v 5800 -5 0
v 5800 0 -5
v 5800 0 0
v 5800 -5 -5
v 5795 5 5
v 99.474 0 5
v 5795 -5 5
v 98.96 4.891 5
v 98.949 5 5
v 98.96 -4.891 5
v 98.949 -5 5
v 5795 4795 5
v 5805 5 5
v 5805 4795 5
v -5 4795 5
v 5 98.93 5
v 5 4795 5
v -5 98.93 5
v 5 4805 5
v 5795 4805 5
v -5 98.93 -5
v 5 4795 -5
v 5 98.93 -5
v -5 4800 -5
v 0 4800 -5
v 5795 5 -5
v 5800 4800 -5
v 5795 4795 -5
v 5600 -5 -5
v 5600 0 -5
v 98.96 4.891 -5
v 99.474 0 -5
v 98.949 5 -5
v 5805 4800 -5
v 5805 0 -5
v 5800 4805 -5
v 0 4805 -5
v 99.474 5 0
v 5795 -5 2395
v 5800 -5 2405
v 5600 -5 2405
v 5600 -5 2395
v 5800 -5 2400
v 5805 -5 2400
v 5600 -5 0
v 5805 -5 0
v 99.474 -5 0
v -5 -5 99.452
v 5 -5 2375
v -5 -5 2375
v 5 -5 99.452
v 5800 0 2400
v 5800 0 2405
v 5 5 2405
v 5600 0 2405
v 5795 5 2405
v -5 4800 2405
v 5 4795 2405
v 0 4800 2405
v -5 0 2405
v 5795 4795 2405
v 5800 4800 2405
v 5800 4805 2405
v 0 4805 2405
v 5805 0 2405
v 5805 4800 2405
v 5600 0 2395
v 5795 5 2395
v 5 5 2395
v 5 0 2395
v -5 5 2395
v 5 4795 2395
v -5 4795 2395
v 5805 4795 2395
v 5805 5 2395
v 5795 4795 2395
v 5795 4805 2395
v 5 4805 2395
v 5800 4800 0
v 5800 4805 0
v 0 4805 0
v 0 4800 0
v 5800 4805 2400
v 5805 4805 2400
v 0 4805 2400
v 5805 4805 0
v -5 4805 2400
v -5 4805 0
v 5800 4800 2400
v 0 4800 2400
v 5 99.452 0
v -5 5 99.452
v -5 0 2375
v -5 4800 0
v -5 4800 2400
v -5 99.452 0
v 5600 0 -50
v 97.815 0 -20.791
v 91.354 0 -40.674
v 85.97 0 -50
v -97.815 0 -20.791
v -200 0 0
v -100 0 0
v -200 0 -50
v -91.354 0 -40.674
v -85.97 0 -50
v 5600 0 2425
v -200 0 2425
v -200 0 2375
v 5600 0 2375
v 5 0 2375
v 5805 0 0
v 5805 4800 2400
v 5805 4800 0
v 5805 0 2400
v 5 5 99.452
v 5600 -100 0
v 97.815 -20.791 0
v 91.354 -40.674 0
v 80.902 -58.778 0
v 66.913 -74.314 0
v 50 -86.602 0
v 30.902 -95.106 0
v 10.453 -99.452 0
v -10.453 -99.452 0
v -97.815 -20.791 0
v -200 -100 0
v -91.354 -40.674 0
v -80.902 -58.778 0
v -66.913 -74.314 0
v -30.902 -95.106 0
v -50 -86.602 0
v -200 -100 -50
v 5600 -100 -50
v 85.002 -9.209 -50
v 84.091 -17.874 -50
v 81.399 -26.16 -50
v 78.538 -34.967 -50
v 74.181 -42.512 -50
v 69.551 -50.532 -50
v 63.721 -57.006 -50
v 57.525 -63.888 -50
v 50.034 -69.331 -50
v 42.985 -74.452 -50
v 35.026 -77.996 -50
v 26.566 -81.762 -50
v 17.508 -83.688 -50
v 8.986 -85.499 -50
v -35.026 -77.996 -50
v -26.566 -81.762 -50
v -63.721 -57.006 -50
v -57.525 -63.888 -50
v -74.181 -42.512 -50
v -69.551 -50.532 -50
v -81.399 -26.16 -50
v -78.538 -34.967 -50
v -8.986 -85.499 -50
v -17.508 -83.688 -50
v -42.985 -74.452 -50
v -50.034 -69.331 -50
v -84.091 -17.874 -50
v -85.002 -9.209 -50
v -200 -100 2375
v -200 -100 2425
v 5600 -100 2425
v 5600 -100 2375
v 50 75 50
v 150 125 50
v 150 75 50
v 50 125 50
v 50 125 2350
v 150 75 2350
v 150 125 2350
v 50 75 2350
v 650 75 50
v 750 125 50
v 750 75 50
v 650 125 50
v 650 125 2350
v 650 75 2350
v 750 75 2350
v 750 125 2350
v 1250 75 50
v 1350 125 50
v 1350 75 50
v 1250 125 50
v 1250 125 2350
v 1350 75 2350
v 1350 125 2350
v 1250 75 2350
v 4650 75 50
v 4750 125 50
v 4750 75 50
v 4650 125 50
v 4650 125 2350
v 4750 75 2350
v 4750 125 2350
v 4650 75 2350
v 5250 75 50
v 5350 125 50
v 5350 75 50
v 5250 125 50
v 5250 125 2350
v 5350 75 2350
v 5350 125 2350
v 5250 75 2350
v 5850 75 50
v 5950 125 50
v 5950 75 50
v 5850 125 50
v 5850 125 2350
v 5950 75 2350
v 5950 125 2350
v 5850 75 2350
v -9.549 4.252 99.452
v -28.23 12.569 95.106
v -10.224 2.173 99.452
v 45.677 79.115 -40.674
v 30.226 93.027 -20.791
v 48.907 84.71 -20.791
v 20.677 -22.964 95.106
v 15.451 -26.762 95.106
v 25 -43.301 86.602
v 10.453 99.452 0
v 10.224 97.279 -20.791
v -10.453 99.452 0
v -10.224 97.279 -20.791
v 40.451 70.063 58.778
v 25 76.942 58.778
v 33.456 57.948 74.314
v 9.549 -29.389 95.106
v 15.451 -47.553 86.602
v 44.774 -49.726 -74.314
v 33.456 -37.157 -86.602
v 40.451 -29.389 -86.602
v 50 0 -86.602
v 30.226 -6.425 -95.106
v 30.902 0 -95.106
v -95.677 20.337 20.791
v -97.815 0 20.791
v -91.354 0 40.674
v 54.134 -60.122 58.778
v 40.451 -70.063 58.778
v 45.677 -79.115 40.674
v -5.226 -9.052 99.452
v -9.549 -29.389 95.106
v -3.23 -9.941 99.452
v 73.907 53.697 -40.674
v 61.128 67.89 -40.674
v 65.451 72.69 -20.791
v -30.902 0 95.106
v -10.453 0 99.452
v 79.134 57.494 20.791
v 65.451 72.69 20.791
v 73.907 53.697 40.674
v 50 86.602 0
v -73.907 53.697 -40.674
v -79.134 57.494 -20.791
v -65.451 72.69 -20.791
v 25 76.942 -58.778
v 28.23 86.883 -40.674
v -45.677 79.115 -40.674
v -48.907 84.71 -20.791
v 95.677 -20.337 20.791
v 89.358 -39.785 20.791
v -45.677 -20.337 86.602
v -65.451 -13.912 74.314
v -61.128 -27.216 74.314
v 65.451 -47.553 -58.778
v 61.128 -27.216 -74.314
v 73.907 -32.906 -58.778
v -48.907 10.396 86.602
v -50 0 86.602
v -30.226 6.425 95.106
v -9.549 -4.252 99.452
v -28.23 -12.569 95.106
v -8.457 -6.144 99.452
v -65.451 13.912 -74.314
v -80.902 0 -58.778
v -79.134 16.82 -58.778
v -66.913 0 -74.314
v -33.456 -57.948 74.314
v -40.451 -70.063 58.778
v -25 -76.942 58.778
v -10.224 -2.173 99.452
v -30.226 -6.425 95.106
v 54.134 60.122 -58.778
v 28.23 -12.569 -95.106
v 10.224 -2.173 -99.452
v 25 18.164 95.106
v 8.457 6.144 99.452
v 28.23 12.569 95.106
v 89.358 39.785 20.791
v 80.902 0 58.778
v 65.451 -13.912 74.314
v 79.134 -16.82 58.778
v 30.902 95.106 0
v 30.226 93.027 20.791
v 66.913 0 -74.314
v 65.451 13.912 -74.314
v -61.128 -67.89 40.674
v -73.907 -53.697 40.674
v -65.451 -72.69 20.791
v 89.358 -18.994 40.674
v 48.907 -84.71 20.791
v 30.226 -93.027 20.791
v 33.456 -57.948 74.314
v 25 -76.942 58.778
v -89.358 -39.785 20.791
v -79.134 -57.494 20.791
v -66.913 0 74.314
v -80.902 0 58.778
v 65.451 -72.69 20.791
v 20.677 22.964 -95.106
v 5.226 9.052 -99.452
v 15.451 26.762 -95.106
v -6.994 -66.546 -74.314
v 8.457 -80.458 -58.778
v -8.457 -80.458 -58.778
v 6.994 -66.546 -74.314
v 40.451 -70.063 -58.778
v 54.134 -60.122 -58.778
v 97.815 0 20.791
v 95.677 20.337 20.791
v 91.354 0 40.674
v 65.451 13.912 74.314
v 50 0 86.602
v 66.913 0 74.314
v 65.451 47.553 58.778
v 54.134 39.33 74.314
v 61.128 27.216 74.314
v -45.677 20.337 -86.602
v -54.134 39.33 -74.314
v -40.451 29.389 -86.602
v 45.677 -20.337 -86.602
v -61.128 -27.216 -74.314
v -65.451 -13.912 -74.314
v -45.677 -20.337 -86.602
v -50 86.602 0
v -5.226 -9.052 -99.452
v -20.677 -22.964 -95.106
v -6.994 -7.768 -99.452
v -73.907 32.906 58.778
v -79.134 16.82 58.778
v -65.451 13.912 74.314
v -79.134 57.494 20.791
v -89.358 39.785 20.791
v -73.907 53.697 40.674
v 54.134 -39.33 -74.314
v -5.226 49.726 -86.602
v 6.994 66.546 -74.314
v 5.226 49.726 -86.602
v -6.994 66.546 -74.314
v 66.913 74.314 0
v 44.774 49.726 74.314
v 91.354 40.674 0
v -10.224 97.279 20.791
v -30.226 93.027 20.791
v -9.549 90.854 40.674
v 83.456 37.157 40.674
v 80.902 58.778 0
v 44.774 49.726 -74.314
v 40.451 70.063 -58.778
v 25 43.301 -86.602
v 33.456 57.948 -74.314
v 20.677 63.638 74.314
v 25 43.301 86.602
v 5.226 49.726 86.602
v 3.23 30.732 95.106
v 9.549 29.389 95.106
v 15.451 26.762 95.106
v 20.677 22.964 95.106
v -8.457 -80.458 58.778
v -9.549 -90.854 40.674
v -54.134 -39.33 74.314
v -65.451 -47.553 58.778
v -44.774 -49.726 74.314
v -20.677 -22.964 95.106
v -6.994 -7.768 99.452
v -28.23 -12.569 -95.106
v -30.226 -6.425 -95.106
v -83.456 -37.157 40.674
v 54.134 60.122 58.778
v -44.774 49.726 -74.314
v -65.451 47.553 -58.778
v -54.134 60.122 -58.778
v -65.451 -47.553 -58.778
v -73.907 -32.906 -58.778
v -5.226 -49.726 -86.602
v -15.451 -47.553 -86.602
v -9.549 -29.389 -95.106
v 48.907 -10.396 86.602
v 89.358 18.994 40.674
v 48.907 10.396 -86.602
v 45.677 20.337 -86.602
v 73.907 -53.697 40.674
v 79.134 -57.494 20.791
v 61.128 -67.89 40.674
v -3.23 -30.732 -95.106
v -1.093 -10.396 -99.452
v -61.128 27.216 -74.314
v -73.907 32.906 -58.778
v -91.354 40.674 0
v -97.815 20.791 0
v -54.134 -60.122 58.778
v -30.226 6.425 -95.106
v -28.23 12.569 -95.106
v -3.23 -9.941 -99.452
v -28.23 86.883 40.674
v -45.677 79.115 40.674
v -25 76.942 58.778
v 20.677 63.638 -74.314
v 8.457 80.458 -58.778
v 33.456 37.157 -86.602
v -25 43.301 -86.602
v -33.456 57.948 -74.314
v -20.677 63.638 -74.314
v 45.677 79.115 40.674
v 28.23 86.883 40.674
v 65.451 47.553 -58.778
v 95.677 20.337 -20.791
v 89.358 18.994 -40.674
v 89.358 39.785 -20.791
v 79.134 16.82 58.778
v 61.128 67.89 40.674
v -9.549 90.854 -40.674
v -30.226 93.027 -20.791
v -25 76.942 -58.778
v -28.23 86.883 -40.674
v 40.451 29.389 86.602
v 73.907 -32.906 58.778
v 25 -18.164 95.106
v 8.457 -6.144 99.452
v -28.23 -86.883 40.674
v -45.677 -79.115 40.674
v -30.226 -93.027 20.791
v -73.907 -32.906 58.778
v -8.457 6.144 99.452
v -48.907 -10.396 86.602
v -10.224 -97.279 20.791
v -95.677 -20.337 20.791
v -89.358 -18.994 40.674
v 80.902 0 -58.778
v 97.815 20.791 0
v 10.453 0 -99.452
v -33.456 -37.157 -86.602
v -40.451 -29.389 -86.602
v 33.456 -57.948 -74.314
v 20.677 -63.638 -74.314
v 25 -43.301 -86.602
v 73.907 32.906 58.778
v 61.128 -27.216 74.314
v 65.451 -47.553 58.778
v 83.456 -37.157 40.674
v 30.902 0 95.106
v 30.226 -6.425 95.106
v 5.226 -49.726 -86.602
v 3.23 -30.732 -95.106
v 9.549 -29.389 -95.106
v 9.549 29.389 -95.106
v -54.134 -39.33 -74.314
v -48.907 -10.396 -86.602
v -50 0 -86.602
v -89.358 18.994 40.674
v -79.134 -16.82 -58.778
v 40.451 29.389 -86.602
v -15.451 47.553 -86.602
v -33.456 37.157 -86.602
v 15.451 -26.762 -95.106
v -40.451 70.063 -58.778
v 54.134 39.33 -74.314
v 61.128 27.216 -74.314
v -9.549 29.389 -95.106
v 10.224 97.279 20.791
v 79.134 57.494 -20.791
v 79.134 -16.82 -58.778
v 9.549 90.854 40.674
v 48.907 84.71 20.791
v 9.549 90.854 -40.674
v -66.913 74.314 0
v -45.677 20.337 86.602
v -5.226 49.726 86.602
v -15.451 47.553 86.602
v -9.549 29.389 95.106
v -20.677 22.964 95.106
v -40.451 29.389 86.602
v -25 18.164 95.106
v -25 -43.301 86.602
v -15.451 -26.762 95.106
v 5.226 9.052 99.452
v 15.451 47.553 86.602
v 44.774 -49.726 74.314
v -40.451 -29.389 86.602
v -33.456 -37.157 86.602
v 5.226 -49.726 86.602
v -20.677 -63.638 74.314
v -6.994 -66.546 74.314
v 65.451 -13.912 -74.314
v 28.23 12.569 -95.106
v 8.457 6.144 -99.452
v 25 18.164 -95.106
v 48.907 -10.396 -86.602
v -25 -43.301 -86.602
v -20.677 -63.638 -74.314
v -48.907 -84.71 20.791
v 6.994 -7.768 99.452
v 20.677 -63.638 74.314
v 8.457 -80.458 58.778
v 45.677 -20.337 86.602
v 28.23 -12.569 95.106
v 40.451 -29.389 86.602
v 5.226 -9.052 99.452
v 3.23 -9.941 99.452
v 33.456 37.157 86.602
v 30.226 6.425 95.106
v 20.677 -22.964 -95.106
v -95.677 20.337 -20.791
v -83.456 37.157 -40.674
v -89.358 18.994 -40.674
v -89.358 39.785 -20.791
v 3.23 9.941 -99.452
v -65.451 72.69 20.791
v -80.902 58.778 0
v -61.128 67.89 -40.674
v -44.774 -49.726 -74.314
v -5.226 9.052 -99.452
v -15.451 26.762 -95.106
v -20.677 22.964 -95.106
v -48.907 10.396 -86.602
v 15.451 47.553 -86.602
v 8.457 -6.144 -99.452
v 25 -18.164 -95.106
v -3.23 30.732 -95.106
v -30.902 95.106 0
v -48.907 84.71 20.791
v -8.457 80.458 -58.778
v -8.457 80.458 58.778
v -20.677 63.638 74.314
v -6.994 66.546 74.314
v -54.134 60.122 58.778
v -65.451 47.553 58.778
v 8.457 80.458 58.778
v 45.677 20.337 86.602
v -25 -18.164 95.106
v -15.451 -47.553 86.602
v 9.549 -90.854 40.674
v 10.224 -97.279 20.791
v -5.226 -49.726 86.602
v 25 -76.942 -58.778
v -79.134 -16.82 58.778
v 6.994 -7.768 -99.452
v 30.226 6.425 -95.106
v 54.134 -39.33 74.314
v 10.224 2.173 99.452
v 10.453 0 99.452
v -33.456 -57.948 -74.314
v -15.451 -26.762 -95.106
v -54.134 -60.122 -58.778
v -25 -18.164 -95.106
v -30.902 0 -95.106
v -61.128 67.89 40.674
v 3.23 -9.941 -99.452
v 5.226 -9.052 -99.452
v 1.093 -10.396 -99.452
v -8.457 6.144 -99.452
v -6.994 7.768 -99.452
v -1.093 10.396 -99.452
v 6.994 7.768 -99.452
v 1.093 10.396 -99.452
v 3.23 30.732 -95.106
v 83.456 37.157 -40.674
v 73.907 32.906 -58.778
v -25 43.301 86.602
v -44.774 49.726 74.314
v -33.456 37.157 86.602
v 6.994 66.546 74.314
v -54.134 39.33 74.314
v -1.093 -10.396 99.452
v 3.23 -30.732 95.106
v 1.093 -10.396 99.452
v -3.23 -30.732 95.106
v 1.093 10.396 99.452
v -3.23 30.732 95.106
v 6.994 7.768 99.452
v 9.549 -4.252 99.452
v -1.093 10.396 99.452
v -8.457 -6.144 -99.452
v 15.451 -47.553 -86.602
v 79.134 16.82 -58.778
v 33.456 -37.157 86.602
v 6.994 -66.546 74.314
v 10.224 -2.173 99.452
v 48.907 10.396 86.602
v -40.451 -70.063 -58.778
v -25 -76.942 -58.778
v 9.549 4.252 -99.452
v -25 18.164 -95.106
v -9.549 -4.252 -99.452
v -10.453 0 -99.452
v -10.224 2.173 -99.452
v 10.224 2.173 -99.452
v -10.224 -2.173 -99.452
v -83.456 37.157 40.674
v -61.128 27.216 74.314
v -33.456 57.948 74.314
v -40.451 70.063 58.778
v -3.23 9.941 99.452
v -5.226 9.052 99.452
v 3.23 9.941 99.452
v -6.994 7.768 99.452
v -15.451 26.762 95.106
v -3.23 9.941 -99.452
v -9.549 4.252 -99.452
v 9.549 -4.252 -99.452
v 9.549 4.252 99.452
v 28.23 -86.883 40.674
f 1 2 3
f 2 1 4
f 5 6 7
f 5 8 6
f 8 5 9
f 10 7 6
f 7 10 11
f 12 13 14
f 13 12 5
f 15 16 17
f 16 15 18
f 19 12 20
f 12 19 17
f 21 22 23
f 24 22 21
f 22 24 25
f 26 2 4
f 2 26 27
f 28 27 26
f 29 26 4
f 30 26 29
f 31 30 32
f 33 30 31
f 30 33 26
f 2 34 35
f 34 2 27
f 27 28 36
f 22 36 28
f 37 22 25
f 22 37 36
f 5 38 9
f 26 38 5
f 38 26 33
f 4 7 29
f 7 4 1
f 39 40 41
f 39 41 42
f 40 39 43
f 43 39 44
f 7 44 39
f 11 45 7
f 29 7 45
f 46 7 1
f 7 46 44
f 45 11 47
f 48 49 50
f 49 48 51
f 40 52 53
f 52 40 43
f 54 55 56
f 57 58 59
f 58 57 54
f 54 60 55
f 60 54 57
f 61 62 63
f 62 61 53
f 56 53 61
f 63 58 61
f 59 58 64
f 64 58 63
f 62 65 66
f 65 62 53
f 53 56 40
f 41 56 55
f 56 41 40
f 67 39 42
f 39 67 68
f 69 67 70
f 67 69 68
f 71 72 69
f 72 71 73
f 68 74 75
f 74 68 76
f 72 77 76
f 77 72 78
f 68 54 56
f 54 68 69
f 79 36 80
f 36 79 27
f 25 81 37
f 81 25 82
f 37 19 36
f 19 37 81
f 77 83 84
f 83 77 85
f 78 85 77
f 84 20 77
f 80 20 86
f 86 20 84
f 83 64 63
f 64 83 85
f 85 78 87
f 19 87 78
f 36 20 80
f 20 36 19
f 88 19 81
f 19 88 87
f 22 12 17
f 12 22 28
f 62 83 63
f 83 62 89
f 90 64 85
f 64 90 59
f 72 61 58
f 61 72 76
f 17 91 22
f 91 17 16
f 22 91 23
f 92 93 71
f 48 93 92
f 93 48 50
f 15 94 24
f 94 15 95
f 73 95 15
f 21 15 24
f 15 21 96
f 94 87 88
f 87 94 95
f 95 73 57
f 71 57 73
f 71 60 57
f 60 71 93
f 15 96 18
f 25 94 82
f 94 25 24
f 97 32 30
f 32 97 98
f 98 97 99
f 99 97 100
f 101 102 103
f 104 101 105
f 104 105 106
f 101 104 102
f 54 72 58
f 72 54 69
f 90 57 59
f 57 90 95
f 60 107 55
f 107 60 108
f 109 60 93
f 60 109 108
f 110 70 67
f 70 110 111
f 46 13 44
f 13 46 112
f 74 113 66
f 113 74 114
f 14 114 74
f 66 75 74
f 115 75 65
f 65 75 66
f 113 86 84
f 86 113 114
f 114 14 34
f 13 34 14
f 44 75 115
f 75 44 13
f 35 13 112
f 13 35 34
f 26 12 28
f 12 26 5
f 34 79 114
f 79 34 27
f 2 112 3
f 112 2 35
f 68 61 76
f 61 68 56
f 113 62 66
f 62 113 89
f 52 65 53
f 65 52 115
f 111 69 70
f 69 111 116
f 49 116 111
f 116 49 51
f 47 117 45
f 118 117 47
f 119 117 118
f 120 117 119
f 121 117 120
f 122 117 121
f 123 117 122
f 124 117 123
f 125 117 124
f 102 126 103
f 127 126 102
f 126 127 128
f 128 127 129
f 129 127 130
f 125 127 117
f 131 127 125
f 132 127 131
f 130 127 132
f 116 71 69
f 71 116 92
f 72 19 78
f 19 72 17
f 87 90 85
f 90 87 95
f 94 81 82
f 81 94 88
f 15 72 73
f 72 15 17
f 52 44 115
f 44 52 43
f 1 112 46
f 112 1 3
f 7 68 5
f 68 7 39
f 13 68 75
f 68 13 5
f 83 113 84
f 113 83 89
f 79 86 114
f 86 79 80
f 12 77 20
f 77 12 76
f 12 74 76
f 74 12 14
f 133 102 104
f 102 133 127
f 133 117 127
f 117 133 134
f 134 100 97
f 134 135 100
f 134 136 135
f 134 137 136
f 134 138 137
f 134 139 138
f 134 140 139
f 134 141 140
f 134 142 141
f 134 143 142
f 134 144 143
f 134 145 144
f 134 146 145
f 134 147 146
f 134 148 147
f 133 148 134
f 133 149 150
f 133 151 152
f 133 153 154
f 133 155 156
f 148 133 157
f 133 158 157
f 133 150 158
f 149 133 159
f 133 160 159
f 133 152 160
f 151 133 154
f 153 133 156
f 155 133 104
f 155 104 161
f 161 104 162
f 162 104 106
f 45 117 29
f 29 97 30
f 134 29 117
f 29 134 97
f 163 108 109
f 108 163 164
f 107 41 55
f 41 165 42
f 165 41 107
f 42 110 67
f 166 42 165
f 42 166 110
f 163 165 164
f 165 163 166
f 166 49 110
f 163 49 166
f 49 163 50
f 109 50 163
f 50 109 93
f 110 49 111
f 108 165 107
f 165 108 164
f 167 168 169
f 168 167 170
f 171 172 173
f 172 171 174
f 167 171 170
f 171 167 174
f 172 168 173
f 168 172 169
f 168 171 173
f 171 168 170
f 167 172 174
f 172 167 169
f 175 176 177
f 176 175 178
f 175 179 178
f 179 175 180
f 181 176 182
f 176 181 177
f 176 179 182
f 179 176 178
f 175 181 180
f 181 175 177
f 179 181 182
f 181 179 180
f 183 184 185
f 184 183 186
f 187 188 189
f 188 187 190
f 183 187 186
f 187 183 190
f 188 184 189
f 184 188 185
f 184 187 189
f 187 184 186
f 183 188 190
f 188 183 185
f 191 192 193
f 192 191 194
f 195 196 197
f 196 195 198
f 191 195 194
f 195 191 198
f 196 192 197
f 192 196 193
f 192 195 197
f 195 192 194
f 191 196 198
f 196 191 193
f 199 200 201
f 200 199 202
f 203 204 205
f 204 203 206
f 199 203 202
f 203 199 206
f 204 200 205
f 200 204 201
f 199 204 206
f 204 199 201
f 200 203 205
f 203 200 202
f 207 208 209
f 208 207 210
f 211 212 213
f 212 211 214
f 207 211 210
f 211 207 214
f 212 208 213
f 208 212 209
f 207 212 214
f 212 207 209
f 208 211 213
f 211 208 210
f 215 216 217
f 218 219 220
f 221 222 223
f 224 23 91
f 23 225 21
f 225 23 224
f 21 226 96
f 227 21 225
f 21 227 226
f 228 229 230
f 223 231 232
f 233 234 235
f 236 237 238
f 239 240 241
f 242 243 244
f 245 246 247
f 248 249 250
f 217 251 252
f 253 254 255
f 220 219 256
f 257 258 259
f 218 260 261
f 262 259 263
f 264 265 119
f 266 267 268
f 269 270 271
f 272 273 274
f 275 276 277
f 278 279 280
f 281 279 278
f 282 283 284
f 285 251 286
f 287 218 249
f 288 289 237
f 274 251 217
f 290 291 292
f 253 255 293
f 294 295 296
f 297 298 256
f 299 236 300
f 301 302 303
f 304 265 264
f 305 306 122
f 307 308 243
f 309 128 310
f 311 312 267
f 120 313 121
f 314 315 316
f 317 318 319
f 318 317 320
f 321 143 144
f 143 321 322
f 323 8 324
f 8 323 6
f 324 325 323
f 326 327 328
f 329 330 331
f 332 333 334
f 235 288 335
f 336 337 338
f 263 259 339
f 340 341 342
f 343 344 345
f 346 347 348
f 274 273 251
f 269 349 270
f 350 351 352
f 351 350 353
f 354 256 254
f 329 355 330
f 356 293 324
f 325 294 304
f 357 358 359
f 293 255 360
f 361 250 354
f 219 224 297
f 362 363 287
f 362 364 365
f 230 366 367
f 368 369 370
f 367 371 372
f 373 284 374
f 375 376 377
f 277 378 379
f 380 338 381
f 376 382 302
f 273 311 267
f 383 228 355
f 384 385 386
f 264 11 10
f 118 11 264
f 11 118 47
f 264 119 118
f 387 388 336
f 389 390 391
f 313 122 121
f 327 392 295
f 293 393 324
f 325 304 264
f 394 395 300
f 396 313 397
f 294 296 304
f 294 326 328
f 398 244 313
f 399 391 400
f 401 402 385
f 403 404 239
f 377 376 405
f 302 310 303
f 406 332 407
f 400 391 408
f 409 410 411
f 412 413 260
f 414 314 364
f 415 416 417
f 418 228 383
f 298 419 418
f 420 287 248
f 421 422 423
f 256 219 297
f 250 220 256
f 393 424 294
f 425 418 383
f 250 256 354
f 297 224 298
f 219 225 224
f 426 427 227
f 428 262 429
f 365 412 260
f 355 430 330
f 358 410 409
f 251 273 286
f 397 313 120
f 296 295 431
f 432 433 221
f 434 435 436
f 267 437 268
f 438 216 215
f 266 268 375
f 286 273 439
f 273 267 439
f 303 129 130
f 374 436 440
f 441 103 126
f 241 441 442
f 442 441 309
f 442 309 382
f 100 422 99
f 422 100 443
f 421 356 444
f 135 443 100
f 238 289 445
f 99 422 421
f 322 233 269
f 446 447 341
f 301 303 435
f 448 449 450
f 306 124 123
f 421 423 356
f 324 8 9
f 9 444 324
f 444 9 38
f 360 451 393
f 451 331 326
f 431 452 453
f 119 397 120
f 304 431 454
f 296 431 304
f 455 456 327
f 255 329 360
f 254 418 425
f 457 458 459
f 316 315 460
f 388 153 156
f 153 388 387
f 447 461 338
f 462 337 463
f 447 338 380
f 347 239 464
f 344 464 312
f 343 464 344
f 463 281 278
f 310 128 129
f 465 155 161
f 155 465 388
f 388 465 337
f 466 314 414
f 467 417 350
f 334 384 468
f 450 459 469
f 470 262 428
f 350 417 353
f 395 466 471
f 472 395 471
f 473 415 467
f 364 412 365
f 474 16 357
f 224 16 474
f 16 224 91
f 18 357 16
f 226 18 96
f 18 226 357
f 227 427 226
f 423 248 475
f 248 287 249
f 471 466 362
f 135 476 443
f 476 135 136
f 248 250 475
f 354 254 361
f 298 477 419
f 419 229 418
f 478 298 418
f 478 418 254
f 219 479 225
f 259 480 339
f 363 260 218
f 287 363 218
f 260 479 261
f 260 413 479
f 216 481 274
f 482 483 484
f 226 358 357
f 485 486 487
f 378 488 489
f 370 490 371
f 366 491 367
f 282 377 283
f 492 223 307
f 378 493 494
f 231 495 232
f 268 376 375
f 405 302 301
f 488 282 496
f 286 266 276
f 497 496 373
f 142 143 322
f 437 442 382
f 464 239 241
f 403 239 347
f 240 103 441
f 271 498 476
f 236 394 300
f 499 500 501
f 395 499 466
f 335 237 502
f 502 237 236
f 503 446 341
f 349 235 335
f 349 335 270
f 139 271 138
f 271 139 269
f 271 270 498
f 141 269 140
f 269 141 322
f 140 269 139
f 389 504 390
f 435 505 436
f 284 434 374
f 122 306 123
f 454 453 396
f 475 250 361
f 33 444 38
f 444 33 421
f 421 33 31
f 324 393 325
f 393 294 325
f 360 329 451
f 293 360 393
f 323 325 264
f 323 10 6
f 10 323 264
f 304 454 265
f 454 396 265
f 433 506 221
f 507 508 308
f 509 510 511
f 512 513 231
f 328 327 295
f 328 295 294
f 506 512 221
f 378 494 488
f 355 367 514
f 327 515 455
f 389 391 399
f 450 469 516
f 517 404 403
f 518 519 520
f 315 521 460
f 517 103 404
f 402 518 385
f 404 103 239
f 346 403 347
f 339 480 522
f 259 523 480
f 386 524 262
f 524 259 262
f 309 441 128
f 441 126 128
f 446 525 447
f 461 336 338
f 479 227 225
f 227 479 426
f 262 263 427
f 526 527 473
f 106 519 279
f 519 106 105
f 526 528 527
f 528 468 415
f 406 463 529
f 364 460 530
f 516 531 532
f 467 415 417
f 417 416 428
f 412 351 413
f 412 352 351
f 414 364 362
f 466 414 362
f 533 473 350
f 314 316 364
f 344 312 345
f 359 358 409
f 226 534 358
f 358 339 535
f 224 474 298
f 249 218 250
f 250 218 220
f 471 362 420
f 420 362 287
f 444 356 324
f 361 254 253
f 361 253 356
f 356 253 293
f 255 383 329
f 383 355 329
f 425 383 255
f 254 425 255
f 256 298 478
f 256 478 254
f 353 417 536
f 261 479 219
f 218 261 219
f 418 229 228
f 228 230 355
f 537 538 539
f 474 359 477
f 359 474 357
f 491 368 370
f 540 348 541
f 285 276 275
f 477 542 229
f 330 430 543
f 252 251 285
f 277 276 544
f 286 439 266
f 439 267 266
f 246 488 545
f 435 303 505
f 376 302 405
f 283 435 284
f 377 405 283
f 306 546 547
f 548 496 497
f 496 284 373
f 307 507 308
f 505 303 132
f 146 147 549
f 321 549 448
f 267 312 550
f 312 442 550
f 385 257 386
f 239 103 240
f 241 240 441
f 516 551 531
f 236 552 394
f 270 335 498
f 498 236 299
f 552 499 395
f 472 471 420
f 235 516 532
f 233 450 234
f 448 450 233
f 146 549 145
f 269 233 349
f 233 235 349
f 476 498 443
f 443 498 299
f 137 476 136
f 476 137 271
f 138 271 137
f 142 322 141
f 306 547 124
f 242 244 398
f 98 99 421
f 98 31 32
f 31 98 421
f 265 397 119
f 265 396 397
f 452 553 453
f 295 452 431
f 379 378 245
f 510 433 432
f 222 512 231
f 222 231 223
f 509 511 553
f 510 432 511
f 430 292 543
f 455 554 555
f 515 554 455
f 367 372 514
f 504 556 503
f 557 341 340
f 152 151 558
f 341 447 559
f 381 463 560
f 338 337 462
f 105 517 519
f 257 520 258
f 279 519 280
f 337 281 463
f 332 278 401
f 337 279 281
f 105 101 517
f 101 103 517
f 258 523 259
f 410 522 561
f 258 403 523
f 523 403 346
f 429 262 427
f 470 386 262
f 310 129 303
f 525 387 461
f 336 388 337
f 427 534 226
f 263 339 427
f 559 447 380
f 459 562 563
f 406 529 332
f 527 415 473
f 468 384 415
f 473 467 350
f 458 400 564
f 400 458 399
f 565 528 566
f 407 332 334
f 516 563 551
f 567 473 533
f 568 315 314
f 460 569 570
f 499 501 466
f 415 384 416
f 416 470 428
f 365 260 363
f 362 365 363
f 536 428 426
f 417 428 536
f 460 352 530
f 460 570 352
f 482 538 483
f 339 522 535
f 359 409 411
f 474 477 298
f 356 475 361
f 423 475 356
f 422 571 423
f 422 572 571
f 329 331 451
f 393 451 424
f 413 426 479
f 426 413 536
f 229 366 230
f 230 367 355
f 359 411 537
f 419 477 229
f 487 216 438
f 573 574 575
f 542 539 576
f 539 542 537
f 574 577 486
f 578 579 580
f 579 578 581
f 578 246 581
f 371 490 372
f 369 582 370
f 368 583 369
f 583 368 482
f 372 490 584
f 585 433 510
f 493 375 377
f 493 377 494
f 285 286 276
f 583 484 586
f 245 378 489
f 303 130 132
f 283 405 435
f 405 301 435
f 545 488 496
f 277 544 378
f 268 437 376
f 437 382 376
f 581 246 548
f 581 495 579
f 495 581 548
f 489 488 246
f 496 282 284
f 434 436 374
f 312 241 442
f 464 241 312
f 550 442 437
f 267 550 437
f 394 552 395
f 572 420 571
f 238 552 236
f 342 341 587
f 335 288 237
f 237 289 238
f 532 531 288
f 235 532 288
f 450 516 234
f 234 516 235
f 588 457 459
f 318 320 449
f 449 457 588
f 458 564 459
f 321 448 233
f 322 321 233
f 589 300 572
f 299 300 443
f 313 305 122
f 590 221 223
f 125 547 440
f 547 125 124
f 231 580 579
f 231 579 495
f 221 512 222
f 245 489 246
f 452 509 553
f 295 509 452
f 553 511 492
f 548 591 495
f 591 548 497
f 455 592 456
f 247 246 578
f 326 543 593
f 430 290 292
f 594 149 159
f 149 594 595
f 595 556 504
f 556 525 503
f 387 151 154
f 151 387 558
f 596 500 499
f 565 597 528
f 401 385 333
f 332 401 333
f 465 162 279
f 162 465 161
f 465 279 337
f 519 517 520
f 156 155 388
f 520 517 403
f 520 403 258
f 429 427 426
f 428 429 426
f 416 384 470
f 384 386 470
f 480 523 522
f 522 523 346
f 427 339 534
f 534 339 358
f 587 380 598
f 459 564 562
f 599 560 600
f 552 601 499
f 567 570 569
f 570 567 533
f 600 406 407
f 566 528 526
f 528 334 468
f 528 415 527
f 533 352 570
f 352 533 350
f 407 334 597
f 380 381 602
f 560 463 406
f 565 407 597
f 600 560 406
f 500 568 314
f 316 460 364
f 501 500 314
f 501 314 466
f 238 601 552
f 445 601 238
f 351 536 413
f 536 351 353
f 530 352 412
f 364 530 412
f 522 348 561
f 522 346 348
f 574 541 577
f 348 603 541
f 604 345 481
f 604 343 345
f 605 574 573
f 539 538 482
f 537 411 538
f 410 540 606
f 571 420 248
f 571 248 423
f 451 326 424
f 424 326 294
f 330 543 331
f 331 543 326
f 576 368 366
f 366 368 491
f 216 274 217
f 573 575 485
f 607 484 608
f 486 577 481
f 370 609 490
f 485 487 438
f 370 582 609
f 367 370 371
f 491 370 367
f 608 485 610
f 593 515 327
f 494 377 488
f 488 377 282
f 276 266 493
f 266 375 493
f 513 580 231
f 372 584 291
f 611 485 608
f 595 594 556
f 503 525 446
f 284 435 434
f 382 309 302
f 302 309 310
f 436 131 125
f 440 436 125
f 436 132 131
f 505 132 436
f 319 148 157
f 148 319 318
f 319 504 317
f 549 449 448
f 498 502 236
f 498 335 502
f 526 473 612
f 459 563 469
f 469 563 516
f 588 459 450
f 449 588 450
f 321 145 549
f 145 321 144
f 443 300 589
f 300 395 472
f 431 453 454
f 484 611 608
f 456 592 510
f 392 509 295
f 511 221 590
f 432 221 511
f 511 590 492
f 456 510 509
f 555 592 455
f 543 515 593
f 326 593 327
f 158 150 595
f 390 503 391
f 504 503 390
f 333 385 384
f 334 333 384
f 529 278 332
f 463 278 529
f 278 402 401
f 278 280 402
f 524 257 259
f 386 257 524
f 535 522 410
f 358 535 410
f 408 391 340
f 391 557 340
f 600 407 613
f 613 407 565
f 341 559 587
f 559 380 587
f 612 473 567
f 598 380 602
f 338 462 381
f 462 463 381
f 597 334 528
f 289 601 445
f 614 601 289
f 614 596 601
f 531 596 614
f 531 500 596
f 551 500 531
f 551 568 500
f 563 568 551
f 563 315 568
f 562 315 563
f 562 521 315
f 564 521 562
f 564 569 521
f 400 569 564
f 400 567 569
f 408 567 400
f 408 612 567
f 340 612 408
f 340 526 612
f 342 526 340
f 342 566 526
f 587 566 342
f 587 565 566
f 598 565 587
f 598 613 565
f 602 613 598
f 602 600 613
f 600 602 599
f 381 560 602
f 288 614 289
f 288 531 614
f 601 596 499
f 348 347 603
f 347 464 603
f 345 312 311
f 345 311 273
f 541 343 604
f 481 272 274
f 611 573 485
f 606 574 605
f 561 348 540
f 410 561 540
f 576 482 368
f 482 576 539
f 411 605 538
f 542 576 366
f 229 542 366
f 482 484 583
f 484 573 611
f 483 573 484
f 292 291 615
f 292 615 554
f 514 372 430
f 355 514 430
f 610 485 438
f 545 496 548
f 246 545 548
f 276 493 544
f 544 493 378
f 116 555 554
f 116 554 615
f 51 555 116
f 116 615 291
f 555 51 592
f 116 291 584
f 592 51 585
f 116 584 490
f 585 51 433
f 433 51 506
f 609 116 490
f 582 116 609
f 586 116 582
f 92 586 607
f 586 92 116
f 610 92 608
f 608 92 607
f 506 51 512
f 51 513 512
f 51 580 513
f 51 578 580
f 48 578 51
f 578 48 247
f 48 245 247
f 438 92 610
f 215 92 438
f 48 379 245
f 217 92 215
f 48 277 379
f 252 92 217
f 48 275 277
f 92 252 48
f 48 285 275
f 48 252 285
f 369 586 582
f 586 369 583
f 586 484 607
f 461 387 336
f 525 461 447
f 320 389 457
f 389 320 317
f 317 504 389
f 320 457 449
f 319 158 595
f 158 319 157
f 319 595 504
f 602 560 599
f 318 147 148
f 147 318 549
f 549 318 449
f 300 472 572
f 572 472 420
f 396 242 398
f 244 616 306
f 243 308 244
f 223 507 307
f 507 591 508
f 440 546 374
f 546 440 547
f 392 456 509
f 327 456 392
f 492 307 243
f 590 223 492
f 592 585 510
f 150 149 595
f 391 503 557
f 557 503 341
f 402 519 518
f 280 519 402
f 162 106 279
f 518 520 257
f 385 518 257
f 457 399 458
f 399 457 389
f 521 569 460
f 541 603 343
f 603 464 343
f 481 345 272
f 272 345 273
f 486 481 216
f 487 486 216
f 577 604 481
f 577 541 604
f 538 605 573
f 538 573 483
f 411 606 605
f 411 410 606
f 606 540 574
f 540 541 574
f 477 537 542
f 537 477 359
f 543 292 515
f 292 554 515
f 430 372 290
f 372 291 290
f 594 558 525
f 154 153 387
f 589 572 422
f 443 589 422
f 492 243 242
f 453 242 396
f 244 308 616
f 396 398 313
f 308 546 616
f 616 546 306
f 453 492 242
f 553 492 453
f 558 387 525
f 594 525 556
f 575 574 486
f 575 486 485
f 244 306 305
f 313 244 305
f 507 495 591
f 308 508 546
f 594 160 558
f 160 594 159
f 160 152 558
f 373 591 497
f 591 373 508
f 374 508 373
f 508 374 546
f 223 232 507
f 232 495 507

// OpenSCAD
// Generated from garage_viewer_grid50_colored.ipynb
// 2x4 approximated as 50x100 mm. Colors by equal length.
thickness = 50;
width = 100;

poses = [
  [1, 5800, [2700, -50, -25], [90, 0, 0], [1.000000, 0.596078, 0.588235]],
  [2, 5800, [2700, -50, 2400], [90, 0, 0], [1.000000, 0.596078, 0.588235]],
  [3, 2300, [100, 100, 1200], [0, -90, 0], [0.682353, 0.780392, 0.909804]],
[4, 2300, [700, 100, 1200], [0, -90, 0], [0.682353, 0.780392, 0.909804]],
 [5, 2300, [1300, 100, 1200], [0, -90, 0], [0.682353, 0.780392, 0.909804]],
  [6, 2300, [4700, 100, 1200], [0, -90, 0], [0.682353, 0.780392, 0.909804]],
  [7, 2300, [5300, 100, 1200], [0, -90, 0], [0.682353, 0.780392, 0.909804]],
  [8, 2300, [5900, 100, 1200], [0, -90, 0], [0.682353, 0.780392, 0.909804]],
/*  [9, 5800, [2900, 4750, 0], [90, 0, 0], [1.000000, 0.596078, 0.588235]],
  [10, 5800, [2900, 4750, 2400], [90, 0, 0], [1.000000, 0.596078, 0.588235]],
  [11, 2300, [100, 4900, 1200], [0, -90, 0], [0.682353, 0.780392, 0.909804]],
  [12, 2300, [700, 4900, 1200], [0, -90, 0], [0.682353, 0.780392, 0.909804]],
  [13, 2300, [1300, 4900, 1200], [0, -90, 0], [0.682353, 0.780392, 0.909804]],
  [14, 2300, [4700, 4900, 1200], [0, -90, 0], [0.682353, 0.780392, 0.909804]],
  [15, 2300, [5300, 4900, 1200], [0, -90, 0], [0.682353, 0.780392, 0.909804]],
  [16, 2300, [5900, 4900, 1200], [0, -90, 0], [0.682353, 0.780392, 0.909804]],
  [17, 1200, [150, 650, 0], [-90, 0, 90], [0.121569, 0.466667, 0.705882]],
  [18, 1200, [150, 4350, 0], [-90, 0, 90], [0.121569, 0.466667, 0.705882]],
  [20, 2750, [150, 650, 1400], [0, -90, 0], [1.000000, 0.733333, 0.470588]],
  [21, 3150, [150, 1250, 1600], [0, -90, 0], [0.596078, 0.874510, 0.541176]],
  [22, 3150, [150, 3750, 1600], [0, -90, 0], [0.596078, 0.874510, 0.541176]],
  [23, 2750, [150, 4350, 1400], [0, -90, 0], [1.000000, 0.733333, 0.470588]],
  [25, 1200, [5850, 650, 0], [-90, 0, 90], [0.121569, 0.466667, 0.705882]],
  [26, 1200, [5850, 4350, 0], [-90, 0, 90], [0.121569, 0.466667, 0.705882]],
  [28, 2750, [5850, 650, 1400], [0, -90, 0], [1.000000, 0.733333, 0.470588]],
  [29, 3150, [5850, 1250, 1600], [0, -90, 0], [0.596078, 0.874510, 0.541176]],
  [30, 3150, [5850, 3750, 1600], [0, -90, 0], [0.596078, 0.874510, 0.541176]],
  [31, 2750, [5850, 4350, 1400], [0, -90, 0], [1.000000, 0.733333, 0.470588]],
  [33, 4950, [100, 1250, 4550], [-90, -60, 90], [0.839216, 0.152941, 0.156863]],
  [34, 4950, [100, 3750, 4550], [90, -60, -90], [0.839216, 0.152941, 0.156863]],
  [35, 3050, [100, 1300, 3250], [-90, -35, 90], [0.172549, 0.627451, 0.172549]],
  [36, 3050, [100, 3700, 3250], [90, -35, -90], [0.172549, 0.627451, 0.172549]],
  [37, 2500, [100, 2500, 5250], [0, -90, 0], [1.000000, 0.498039, 0.054902]],
  [38, 4950, [1250, 1250, 4550], [-90, -60, 90], [0.839216, 0.152941, 0.156863]],
  [39, 4950, [1250, 3750, 4550], [90, -60, -90], [0.839216, 0.152941, 0.156863]],
  [40, 3050, [1250, 1300, 3250], [-90, -35, 90], [0.172549, 0.627451, 0.172549]],
  [41, 3050, [1250, 3700, 3250], [90, -35, -90], [0.172549, 0.627451, 0.172549]],
  [42, 2500, [1250, 2500, 5250], [0, -90, 0], [1.000000, 0.498039, 0.054902]],
  [43, 4950, [2400, 1250, 4550], [-90, -60, 90], [0.839216, 0.152941, 0.156863]],
  [44, 4950, [2400, 3750, 4550], [90, -60, -90], [0.839216, 0.152941, 0.156863]],
  [45, 3050, [2400, 1300, 3250], [-90, -35, 90], [0.172549, 0.627451, 0.172549]],
  [46, 3050, [2400, 3700, 3250], [90, -35, -90], [0.172549, 0.627451, 0.172549]],
  [47, 2500, [2400, 2500, 5250], [0, -90, 0], [1.000000, 0.498039, 0.054902]],
  [48, 4950, [3600, 1250, 4550], [-90, -60, 90], [0.839216, 0.152941, 0.156863]],
  [49, 4950, [3600, 3750, 4550], [90, -60, -90], [0.839216, 0.152941, 0.156863]],
  [50, 3050, [3600, 1300, 3250], [-90, -35, 90], [0.172549, 0.627451, 0.172549]],
  [51, 3050, [3600, 3700, 3250], [90, -35, -90], [0.172549, 0.627451, 0.172549]],
  [52, 2500, [3600, 2500, 5250], [0, -90, 0], [1.000000, 0.498039, 0.054902]],
  [53, 4950, [4750, 1250, 4550], [-90, -60, 90], [0.839216, 0.152941, 0.156863]],
  [54, 4950, [4750, 3750, 4550], [90, -60, -90], [0.839216, 0.152941, 0.156863]],
  [55, 3050, [4750, 1300, 3250], [-90, -35, 90], [0.172549, 0.627451, 0.172549]],
  [56, 3050, [4750, 3700, 3250], [90, -35, -90], [0.172549, 0.627451, 0.172549]],
  [57, 2500, [4750, 2500, 5250], [0, -90, 0], [1.000000, 0.498039, 0.054902]],
  [58, 4950, [5900, 1250, 4550], [-90, -60, 90], [0.839216, 0.152941, 0.156863]],
  [59, 4950, [5900, 3750, 4550], [90, -60, -90], [0.839216, 0.152941, 0.156863]],
  [60, 3050, [5900, 1300, 3250], [-90, -35, 90], [0.172549, 0.627451, 0.172549]],
  [61, 3050, [5900, 3700, 3250], [90, -35, -90], [0.172549, 0.627451, 0.172549]],
  [62, 2500, [5900, 2500, 5250], [0, -90, 0], [1.000000, 0.498039, 0.054902]],
*/// [63, 5900, [3000, 2500, 4150], [90, 0, 0], [1.000000, 0.596078, 0.588235]],
];

module beam(len, pos, rot, rgb){
  color(rgb)
    translate(pos)
      rotate(rot)
        cube([len, thickness, width], center=true);
}

// Red bounding box from (0,0,0) to (5800,4800,2400)
bbox = [5800, 4800, 2400];
edge = 10;
module bbox_wire(b){
  x=b[0]; y=b[1]; z=b[2];
  color([1,0,0]) {
    for (yy=[0,y], zz=[0,z]) translate([x/2, yy, zz]) cube([x, edge, edge], center=true);
    for (xx=[0,x], zz=[0,z]) translate([xx, y/2, zz]) cube([edge, y, edge], center=true);
    for (xx=[0,x], yy=[0,y]) translate([xx, yy, z/2]) cube([edge, edge, z], center=true);
  }
}

bbox_wire(bbox);

sphere(r=100, center=true);

for (p = poses) {
  beam(p[1], p[2], p[3], p[4]);
}
